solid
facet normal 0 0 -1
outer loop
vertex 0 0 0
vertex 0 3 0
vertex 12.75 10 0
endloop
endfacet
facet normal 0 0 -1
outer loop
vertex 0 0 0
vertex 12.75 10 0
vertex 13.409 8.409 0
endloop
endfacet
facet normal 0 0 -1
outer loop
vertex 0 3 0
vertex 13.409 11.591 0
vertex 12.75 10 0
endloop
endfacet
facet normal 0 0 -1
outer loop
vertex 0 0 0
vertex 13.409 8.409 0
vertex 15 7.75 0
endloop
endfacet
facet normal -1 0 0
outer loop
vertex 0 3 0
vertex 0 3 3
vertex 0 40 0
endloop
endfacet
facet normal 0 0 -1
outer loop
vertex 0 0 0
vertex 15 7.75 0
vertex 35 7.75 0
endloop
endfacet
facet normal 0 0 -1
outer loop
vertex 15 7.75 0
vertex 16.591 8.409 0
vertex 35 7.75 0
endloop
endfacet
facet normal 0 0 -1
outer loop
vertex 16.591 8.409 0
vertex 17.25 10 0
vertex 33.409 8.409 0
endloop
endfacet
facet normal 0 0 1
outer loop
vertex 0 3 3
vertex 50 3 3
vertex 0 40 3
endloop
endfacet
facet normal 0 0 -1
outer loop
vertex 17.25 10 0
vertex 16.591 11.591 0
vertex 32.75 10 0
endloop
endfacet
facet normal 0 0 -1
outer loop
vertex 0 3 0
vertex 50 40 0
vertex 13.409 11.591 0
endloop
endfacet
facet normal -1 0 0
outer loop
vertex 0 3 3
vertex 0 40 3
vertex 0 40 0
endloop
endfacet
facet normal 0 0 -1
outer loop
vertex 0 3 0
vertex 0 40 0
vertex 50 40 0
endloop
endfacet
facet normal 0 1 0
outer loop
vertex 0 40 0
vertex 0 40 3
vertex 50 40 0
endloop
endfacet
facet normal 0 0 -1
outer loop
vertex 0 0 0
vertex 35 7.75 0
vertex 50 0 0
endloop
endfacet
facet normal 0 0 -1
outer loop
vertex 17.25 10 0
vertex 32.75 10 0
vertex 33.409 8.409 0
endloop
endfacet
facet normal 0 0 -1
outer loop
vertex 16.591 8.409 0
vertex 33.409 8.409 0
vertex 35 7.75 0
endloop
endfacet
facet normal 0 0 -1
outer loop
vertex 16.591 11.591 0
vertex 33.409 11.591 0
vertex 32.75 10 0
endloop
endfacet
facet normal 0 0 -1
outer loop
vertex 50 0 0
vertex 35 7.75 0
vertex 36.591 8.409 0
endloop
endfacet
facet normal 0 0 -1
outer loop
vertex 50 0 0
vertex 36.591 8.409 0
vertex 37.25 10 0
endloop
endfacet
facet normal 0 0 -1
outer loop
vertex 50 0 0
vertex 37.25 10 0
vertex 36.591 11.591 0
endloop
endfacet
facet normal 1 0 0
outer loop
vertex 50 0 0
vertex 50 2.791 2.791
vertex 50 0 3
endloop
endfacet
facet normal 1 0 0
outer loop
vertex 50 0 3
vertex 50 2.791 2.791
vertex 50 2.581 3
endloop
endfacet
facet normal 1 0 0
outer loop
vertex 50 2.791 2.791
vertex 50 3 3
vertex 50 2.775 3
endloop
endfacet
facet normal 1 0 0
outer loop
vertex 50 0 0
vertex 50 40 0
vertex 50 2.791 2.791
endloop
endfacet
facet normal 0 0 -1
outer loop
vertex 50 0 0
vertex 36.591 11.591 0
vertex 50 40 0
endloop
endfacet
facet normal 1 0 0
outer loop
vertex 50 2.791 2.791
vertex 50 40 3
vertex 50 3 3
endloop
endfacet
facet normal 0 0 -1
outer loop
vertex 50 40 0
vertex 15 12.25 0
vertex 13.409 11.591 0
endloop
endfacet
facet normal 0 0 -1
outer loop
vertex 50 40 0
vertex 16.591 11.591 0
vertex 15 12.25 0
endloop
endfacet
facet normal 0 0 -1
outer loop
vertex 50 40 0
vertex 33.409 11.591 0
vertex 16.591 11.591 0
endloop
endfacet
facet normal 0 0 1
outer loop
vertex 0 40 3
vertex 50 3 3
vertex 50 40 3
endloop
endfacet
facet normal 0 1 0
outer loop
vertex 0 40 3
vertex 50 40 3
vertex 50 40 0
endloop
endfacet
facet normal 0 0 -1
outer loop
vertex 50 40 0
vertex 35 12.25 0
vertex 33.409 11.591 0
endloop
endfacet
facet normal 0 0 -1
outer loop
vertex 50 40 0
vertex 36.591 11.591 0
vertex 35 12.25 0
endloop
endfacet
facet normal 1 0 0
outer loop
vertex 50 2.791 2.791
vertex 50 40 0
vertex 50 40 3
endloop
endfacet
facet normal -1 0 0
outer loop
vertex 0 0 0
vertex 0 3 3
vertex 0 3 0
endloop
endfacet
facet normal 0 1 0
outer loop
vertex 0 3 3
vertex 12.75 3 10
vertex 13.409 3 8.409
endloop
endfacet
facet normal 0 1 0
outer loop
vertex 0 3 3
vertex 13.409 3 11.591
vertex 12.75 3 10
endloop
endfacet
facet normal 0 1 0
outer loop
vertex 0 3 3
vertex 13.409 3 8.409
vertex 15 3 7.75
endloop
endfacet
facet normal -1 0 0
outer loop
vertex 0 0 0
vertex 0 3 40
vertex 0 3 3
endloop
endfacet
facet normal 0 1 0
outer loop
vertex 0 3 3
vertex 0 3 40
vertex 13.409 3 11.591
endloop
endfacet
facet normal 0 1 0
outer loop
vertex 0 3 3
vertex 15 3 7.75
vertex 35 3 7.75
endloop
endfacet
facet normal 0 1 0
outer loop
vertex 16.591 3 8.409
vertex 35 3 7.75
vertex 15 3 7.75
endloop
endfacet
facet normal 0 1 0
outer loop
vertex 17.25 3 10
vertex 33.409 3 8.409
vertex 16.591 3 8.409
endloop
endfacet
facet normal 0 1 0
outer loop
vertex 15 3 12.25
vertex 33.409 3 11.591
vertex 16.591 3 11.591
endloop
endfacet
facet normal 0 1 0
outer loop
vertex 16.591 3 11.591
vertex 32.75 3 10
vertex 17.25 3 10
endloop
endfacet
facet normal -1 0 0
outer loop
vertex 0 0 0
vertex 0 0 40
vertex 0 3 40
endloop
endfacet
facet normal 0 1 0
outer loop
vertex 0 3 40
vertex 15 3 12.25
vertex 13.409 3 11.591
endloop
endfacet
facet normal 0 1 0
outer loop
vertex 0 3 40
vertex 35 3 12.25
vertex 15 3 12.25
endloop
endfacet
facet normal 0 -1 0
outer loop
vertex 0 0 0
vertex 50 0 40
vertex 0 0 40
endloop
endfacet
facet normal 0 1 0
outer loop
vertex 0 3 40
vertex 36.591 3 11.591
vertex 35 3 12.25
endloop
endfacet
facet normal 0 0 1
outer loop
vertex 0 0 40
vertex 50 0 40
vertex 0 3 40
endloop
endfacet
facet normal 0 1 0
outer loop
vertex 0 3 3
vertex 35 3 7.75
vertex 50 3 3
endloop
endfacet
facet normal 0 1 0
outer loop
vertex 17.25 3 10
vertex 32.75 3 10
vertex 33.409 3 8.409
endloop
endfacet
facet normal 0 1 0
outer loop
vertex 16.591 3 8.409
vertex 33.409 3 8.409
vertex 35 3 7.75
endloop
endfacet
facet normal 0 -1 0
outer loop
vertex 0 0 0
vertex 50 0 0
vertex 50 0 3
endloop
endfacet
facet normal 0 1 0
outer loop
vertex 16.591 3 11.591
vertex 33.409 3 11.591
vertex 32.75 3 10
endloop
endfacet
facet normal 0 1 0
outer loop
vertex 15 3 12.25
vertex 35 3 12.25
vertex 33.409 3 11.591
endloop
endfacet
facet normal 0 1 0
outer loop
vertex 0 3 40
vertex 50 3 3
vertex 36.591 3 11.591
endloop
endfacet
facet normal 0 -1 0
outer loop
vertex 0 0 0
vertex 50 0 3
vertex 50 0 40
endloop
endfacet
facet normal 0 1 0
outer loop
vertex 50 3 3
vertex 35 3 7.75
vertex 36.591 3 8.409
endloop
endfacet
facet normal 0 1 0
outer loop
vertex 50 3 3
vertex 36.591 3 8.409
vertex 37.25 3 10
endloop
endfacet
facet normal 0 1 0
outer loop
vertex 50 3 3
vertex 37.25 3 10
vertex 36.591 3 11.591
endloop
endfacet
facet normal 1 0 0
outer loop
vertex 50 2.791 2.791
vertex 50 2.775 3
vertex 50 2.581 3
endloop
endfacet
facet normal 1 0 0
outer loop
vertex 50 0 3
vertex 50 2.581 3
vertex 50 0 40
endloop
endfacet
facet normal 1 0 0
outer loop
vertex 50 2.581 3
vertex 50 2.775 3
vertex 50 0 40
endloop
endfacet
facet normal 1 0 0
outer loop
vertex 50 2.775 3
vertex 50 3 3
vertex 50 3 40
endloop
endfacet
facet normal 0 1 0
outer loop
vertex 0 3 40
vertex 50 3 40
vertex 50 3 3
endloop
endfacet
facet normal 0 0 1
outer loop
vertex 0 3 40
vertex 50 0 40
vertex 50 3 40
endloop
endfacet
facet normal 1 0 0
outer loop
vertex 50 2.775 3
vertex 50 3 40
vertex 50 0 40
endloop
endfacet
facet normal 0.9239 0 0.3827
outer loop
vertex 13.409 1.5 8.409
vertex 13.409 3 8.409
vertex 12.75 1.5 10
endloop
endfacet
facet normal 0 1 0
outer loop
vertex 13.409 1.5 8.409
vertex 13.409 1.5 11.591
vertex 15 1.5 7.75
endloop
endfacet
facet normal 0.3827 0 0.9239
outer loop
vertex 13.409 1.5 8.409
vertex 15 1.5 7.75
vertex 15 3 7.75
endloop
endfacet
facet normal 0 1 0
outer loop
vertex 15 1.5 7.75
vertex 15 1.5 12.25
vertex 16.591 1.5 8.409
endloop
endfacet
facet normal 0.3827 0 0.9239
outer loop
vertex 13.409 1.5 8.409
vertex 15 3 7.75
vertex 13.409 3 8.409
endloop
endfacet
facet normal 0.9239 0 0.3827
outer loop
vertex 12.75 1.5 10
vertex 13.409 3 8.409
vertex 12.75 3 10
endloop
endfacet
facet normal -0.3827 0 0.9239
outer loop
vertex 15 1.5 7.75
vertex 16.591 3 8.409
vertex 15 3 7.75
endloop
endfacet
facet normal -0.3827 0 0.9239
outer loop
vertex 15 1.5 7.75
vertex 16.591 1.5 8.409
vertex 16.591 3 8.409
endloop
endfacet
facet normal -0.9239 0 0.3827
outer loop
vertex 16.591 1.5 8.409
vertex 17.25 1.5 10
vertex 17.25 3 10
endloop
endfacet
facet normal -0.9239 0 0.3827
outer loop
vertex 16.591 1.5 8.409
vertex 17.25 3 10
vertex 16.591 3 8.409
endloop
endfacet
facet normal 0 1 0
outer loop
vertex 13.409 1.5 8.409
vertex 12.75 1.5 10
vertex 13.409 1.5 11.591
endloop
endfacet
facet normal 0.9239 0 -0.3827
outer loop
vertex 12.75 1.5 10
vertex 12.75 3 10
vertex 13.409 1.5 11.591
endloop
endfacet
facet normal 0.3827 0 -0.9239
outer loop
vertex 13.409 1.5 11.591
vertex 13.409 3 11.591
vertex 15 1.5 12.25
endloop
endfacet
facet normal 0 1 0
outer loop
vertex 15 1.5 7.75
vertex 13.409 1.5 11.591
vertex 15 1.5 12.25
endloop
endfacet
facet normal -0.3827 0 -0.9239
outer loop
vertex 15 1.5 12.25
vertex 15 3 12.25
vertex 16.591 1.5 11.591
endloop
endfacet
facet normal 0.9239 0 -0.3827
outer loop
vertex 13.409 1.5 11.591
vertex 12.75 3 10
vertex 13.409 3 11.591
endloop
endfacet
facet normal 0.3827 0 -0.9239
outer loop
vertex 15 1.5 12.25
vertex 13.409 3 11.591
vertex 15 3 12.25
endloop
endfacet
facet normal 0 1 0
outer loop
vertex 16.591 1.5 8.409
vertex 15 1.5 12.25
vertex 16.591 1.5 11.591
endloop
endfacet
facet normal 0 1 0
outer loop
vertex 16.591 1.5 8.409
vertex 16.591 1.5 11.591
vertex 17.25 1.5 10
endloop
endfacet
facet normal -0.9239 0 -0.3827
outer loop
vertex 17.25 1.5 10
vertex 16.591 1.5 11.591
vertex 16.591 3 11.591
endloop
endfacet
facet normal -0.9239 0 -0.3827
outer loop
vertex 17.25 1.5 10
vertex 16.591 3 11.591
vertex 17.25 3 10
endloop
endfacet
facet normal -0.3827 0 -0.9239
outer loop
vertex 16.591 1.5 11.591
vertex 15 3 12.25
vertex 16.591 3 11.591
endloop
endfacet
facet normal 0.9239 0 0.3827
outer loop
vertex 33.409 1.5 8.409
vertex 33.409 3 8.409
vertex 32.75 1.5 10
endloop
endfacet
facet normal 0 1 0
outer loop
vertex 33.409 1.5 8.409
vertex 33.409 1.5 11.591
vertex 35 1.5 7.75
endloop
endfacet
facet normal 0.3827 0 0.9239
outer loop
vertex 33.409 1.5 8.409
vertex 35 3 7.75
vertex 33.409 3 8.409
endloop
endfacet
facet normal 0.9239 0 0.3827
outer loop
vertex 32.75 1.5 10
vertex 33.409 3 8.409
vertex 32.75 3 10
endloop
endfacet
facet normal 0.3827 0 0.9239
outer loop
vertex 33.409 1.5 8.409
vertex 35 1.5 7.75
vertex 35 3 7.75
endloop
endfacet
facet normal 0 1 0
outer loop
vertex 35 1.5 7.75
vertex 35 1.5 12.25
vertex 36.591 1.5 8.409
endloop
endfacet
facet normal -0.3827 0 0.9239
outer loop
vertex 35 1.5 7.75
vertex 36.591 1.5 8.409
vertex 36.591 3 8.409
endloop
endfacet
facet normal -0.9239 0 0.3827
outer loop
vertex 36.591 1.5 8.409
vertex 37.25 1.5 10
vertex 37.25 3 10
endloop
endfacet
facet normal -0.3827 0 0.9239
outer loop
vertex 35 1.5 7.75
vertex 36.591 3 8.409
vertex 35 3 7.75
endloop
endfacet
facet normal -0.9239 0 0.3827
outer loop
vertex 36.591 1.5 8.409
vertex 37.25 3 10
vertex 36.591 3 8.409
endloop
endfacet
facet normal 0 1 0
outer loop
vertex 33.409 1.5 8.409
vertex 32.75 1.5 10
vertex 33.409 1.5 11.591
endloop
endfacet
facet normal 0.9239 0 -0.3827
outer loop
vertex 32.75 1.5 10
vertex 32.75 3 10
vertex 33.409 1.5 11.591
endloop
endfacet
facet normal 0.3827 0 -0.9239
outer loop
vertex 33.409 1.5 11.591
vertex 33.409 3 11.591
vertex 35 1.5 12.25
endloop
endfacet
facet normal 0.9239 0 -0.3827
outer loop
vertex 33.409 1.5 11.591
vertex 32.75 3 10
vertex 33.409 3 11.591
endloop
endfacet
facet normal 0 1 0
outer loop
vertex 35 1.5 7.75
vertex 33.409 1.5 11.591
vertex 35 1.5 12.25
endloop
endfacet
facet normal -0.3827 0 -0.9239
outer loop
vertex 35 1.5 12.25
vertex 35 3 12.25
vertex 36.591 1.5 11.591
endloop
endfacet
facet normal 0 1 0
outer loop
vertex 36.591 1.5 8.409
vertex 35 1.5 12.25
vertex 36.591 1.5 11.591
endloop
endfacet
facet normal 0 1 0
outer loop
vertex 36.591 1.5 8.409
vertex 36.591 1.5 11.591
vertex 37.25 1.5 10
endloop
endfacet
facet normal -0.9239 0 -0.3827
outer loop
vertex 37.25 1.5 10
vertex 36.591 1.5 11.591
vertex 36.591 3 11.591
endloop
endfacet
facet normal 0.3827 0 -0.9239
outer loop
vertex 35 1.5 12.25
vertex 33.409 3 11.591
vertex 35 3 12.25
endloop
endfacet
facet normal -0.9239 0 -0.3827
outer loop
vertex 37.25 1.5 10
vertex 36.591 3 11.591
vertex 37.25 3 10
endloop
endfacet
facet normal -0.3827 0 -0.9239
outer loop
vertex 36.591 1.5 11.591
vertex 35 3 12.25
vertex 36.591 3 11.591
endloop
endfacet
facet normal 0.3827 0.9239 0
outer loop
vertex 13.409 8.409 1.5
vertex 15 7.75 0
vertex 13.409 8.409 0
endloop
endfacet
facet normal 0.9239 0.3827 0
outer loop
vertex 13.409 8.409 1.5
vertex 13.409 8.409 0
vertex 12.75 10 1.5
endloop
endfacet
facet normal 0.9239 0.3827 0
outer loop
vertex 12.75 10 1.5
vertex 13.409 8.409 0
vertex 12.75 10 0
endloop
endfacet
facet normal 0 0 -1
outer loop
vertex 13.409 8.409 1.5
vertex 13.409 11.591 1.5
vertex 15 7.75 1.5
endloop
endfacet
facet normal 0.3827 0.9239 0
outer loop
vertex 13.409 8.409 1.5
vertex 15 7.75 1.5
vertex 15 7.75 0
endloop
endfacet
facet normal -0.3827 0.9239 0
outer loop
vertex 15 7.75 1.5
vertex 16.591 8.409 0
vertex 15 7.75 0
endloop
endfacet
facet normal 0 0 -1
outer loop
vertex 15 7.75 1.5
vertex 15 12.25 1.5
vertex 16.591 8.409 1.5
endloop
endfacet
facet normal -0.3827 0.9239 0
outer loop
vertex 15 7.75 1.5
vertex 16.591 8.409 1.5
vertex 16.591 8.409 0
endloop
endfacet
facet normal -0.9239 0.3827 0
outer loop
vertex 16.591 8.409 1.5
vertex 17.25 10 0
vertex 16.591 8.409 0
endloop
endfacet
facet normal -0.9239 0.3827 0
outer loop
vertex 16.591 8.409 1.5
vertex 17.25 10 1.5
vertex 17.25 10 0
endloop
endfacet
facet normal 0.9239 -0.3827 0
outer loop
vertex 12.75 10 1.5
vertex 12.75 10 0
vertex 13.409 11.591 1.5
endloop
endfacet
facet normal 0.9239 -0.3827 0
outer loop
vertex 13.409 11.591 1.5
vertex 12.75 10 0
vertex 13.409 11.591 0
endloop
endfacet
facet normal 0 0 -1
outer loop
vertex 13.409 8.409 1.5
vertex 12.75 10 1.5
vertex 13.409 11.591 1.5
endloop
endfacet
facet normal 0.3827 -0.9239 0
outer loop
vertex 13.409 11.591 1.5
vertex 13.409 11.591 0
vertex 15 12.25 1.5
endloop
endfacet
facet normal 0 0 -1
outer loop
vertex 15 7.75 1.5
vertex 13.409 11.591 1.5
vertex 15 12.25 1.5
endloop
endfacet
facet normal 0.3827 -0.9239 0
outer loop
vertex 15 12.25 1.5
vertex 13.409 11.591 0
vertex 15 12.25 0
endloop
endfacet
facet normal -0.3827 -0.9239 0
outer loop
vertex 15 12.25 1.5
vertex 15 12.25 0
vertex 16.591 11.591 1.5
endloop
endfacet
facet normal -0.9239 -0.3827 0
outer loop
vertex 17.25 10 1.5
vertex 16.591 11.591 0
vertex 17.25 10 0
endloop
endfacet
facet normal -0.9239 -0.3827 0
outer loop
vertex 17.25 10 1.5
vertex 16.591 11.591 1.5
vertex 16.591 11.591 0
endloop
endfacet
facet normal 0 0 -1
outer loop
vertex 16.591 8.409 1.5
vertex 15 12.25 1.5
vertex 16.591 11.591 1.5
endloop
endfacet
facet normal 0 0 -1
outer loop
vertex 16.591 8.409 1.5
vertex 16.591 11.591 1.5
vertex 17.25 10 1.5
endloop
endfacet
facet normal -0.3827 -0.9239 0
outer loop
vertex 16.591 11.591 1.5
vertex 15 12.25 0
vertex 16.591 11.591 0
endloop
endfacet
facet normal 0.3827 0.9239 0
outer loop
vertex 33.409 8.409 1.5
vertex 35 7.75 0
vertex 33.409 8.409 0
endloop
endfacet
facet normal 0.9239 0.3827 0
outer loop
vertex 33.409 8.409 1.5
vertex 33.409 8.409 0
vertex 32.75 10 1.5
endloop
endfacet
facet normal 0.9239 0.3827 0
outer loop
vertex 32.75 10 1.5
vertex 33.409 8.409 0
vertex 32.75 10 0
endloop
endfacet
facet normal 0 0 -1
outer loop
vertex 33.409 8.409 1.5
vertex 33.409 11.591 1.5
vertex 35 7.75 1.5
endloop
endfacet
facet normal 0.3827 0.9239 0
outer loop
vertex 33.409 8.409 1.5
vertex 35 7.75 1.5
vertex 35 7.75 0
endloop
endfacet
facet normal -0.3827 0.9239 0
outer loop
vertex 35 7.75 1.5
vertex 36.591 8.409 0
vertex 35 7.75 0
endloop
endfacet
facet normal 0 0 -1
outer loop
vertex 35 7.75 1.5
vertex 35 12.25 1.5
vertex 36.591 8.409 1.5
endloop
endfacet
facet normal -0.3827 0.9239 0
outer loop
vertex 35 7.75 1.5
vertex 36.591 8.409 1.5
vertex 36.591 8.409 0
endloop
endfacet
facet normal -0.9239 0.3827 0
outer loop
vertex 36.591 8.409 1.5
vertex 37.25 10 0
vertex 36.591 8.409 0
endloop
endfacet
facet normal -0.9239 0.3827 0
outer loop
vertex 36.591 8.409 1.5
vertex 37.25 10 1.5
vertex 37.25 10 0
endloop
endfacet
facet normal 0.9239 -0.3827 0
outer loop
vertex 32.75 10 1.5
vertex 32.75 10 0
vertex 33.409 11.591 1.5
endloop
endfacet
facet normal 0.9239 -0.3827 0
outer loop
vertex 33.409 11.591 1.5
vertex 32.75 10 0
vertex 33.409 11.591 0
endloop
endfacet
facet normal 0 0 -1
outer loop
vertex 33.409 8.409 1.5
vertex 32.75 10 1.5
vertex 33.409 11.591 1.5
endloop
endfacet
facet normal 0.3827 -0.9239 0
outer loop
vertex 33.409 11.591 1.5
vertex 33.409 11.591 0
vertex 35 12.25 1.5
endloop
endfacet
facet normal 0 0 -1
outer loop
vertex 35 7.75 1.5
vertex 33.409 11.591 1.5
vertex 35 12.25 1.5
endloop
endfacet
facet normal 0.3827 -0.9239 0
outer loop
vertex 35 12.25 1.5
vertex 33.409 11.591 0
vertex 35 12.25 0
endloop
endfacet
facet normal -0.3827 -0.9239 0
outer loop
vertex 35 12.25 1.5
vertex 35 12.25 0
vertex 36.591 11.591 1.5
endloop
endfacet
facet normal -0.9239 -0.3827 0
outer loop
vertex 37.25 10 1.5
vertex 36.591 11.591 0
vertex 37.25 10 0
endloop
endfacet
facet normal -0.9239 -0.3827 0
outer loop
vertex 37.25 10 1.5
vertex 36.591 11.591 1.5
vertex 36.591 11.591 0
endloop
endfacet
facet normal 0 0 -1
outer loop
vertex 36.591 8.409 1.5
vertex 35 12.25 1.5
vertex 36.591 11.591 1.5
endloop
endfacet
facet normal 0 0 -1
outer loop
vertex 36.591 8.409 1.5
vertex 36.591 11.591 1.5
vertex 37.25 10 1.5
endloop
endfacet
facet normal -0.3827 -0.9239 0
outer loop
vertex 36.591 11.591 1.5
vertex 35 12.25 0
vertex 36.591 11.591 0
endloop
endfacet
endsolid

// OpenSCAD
// パラメータ設定
width = 50;
depth = 40;
height = 40;
thickness = 3;

// ねじ穴設定
hole_dia = 4.5;
cs_dia = 8.0;
cs_depth = 2.0;

module countersunk_hole() {
    union() {
        // 貫通穴
        cylinder(d = hole_dia, h = thickness * 3, center = true);
        // 皿座面
        translate([0, 0, thickness / 2 - cs_depth + 0.01])
            cylinder(d1 = hole_dia, d2 = cs_dia, h = cs_depth);
    }
}

difference() {
    // L字金具の本体
    union() {
        // 水平面
        cube([width, depth, thickness]);
        // 垂直面
        cube([width, thickness, height]);
    }

    // 水平面の穴 (Y方向に10mm内側、X方向に左右対称)
    for (x = [15, 35]) {
        translate([x, 10, -thickness])
            countersunk_hole();
    }

    // 垂直面の穴 (Z方向に10mm内側、X方向に左右対称)
    // 皿座面を外側(Y+)に向けるため回転
    for (x = [15, 35]) {
        translate([x, thickness + thickness, 10])
            rotate([90, 0, 0])
                countersunk_hole();
    }
}
